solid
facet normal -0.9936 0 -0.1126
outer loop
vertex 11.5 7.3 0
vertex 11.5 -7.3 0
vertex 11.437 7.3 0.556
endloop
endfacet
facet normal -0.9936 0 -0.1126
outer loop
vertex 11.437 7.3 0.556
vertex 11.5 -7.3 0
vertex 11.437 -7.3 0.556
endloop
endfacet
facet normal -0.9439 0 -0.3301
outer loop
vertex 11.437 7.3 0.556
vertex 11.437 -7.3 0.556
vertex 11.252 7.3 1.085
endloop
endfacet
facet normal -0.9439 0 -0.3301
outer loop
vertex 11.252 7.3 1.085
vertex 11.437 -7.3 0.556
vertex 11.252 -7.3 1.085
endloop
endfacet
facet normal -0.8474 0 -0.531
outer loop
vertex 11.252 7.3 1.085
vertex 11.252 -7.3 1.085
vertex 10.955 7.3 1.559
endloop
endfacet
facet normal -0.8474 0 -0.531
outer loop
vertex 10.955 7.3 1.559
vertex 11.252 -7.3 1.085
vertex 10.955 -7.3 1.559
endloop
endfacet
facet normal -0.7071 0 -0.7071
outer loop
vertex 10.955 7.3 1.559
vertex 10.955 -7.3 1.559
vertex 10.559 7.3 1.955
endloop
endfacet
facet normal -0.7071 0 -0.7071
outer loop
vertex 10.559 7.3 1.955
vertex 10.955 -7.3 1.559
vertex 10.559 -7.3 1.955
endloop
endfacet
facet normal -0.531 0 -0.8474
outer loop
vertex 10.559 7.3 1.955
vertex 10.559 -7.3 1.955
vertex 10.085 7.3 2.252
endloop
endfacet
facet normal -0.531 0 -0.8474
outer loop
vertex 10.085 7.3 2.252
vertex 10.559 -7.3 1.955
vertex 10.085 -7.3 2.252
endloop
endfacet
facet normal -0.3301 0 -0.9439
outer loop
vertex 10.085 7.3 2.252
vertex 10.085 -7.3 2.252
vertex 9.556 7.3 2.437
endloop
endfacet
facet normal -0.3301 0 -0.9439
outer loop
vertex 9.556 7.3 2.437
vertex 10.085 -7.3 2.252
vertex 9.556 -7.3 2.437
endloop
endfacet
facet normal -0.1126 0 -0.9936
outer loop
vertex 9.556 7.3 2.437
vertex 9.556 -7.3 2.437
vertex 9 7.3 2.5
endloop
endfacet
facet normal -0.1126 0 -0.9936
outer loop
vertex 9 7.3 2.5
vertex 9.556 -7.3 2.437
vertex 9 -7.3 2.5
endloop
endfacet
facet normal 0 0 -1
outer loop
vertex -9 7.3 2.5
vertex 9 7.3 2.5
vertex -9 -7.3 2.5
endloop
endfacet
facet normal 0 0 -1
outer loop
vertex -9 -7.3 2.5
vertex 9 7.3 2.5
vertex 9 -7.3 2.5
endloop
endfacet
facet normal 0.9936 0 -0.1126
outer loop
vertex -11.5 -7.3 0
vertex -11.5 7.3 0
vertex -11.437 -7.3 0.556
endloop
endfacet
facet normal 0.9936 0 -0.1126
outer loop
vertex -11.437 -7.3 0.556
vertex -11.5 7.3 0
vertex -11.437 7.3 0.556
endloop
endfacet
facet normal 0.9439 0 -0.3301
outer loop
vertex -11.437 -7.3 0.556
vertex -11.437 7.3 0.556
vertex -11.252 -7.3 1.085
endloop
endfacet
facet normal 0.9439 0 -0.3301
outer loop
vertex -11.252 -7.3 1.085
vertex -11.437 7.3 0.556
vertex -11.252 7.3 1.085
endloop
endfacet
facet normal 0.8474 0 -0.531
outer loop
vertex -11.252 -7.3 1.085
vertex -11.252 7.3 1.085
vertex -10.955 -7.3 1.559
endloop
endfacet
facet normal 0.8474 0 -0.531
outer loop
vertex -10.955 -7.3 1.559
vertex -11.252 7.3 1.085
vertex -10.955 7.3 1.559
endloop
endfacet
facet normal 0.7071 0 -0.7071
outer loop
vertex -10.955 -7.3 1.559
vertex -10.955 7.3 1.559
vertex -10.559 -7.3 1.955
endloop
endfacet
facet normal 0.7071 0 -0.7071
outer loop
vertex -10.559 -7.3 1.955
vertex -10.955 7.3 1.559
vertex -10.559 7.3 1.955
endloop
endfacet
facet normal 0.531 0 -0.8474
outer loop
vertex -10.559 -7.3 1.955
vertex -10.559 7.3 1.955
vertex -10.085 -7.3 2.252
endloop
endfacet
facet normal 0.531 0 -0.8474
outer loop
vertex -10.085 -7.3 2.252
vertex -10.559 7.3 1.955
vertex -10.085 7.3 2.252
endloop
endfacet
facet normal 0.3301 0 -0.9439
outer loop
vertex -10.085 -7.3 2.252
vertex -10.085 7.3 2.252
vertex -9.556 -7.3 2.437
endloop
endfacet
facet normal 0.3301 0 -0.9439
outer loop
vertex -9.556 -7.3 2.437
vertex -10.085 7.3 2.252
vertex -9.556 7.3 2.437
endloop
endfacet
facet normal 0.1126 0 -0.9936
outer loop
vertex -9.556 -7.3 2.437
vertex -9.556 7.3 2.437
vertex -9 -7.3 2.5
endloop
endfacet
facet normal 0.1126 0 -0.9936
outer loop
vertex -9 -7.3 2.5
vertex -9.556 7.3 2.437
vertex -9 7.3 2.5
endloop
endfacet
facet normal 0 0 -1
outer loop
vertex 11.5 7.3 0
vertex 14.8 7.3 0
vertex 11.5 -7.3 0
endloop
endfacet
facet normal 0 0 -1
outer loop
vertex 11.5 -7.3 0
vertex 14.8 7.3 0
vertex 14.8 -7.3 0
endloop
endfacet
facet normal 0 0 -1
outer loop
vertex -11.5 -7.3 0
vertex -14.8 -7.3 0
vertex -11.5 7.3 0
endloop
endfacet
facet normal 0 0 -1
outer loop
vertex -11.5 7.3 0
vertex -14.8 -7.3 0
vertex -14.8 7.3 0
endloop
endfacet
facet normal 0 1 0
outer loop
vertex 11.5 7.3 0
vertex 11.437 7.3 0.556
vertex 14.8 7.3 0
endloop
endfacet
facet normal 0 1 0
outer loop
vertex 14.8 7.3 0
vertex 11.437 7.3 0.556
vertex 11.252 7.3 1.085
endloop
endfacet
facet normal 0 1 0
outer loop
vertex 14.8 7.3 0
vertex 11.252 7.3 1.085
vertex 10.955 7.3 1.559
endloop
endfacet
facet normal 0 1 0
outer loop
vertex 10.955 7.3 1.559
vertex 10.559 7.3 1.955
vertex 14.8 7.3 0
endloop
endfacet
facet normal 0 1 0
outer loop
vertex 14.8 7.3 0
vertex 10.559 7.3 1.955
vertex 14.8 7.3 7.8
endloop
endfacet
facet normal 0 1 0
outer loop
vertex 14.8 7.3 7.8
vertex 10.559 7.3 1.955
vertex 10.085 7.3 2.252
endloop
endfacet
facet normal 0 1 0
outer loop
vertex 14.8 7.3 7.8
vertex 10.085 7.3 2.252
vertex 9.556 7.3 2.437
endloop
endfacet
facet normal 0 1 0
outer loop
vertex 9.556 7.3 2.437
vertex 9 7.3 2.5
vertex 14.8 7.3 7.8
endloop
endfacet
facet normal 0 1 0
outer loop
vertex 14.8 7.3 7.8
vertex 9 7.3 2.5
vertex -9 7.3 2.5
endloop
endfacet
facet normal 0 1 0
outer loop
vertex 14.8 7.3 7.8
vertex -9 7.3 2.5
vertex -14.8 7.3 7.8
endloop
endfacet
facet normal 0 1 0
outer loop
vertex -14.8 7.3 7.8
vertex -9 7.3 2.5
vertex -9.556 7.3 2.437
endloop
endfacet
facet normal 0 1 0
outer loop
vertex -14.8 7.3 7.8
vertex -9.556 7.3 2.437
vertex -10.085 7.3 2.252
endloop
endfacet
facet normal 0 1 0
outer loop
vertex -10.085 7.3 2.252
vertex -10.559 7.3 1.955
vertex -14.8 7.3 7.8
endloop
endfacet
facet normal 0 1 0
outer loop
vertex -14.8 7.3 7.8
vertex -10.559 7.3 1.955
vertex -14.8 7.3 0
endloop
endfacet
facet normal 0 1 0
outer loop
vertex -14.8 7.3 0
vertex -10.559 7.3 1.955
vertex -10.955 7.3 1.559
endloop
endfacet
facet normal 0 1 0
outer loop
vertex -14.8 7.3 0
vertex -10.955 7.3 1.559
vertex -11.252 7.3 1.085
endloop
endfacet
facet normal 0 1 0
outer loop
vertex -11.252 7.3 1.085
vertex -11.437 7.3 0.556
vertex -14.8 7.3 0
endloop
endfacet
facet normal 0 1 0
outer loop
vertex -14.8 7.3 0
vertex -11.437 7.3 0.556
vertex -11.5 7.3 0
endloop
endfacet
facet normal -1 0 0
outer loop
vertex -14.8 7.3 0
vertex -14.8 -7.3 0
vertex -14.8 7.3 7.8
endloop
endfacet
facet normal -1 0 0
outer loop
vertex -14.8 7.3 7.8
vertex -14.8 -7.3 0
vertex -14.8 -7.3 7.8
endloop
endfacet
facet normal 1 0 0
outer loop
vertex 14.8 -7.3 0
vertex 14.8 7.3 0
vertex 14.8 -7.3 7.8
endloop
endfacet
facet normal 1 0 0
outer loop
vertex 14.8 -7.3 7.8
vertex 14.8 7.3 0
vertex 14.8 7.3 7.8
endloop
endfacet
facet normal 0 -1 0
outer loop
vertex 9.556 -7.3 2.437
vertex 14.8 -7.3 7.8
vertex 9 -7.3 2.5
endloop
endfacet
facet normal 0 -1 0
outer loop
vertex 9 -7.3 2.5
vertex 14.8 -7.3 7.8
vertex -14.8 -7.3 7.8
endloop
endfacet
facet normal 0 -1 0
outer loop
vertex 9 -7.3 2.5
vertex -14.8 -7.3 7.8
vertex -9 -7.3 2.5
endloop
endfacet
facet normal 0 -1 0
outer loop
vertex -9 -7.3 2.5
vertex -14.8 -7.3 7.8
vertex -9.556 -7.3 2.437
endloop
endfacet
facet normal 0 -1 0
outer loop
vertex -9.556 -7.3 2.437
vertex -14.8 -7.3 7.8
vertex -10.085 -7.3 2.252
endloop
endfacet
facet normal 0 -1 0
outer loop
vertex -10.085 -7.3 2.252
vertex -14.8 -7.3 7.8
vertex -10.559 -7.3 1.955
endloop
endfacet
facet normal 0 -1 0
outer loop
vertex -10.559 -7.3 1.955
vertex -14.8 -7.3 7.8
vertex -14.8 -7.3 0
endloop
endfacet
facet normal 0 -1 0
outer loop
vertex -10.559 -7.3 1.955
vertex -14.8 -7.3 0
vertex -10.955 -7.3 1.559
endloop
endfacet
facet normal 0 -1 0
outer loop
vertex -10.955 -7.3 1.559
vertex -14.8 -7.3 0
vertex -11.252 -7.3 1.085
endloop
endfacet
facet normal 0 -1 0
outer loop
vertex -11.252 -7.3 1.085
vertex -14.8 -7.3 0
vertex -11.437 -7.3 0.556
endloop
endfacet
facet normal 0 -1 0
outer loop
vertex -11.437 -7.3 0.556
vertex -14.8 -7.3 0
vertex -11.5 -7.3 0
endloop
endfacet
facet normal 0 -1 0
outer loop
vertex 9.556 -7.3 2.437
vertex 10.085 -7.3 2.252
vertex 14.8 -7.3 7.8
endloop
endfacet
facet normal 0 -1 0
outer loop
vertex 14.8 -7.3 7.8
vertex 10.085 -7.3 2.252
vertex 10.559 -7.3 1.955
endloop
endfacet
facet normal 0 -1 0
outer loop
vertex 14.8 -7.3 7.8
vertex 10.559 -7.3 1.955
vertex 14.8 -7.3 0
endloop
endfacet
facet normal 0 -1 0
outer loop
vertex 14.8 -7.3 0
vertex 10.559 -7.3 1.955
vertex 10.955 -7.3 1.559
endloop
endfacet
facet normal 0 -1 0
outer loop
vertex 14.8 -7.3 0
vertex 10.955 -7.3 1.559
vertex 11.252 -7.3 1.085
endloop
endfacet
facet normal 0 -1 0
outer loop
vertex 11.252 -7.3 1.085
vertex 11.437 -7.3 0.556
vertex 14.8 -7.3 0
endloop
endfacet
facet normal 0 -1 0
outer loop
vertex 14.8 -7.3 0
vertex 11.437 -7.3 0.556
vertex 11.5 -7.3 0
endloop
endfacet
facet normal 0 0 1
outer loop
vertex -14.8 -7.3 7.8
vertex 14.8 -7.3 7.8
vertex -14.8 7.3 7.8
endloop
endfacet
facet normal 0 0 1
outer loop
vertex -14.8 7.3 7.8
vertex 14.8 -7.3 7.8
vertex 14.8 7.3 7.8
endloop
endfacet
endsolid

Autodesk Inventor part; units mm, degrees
ref_plane "YZ Plane" through (0, 0, 0) normal (1, 0, 0) x (0, 1, 0)
ref_plane "XZ Plane" through (0, 0, 0) normal (0, 1, 0) x (-1, 0, 0)
ref_plane "XY Plane" through (0, 0, 0) normal (0, 0, 1) x (1, 0, 0)
sketch "Náčrt1" plane through (0, 0, 0) normal (0, 0, 1) x (1, 0, 0)
  line L0 (-20.72, 0) -> (20.72, 0) projected
  line L1 (0, -10.22) -> (0, 10.22) projected
  line L2 (-14.8, 7.3) -> (14.8, 7.3)
  line L3 (14.8, 7.3) -> (14.8, -7.3)
  line L4 (14.8, -7.3) -> (-14.8, -7.3)
  line L5 (-14.8, -7.3) -> (-14.8, 7.3)
  point P0 (0, 0)
  point P1 (0, 7.3)
  point P2 (14.8, 0)
  dimension "d0" = 29.6
  dimension "d1" = 14.6
extrude "Vysunutí1" add sketch "Náčrt1" along normal blind 7.8
sketch "Náčrt2" plane through (-14.8, -7.3, 0) normal (0, -1, 0) x (1, 0, 0)
  line L0 (0, 0) -> (29.6, 0) projected
  line L1 (29.6, 0) -> (29.6, 7.8) projected
  line L2 (0, 7.8) -> (29.6, 7.8) projected
  line L3 (0, 0) -> (0, 7.8) projected
  point P0 (14.8, 0)
  point P1 (14.8, 0)
hole "Díra1" at (0, -7.3, 0) direction (0, 1, 0) diameter 5 end through all
sketch "Náčrt3" plane through (-14.8, -7.3, 7.8) normal (0, -1, 0) x (1, 0, 0)
  line L0 (5.8, -7.8) -> (23.8, -7.8) construction
  line L1 (17.3, -7.8) -> (29.6, -7.8) projected
  line L2 (5.8, -10.3) -> (23.8, -10.3)
  line L3 (23.8, -5.3) -> (5.8, -5.3)
  arc A0 (5.8, -5.3) -> (5.8, -10.3) centre (5.8, -7.8) ccw
  arc A1 (23.8, -10.3) -> (23.8, -5.3) centre (23.8, -7.8) ccw
  point P0 (14.8, -7.8)
  dimension "d14" = 9
  dimension "d15" = 2.5
extrude "Vysunutí2" cut sketch "Náčrt3" against normal through all
properties part number "drzak_kable_guma"
